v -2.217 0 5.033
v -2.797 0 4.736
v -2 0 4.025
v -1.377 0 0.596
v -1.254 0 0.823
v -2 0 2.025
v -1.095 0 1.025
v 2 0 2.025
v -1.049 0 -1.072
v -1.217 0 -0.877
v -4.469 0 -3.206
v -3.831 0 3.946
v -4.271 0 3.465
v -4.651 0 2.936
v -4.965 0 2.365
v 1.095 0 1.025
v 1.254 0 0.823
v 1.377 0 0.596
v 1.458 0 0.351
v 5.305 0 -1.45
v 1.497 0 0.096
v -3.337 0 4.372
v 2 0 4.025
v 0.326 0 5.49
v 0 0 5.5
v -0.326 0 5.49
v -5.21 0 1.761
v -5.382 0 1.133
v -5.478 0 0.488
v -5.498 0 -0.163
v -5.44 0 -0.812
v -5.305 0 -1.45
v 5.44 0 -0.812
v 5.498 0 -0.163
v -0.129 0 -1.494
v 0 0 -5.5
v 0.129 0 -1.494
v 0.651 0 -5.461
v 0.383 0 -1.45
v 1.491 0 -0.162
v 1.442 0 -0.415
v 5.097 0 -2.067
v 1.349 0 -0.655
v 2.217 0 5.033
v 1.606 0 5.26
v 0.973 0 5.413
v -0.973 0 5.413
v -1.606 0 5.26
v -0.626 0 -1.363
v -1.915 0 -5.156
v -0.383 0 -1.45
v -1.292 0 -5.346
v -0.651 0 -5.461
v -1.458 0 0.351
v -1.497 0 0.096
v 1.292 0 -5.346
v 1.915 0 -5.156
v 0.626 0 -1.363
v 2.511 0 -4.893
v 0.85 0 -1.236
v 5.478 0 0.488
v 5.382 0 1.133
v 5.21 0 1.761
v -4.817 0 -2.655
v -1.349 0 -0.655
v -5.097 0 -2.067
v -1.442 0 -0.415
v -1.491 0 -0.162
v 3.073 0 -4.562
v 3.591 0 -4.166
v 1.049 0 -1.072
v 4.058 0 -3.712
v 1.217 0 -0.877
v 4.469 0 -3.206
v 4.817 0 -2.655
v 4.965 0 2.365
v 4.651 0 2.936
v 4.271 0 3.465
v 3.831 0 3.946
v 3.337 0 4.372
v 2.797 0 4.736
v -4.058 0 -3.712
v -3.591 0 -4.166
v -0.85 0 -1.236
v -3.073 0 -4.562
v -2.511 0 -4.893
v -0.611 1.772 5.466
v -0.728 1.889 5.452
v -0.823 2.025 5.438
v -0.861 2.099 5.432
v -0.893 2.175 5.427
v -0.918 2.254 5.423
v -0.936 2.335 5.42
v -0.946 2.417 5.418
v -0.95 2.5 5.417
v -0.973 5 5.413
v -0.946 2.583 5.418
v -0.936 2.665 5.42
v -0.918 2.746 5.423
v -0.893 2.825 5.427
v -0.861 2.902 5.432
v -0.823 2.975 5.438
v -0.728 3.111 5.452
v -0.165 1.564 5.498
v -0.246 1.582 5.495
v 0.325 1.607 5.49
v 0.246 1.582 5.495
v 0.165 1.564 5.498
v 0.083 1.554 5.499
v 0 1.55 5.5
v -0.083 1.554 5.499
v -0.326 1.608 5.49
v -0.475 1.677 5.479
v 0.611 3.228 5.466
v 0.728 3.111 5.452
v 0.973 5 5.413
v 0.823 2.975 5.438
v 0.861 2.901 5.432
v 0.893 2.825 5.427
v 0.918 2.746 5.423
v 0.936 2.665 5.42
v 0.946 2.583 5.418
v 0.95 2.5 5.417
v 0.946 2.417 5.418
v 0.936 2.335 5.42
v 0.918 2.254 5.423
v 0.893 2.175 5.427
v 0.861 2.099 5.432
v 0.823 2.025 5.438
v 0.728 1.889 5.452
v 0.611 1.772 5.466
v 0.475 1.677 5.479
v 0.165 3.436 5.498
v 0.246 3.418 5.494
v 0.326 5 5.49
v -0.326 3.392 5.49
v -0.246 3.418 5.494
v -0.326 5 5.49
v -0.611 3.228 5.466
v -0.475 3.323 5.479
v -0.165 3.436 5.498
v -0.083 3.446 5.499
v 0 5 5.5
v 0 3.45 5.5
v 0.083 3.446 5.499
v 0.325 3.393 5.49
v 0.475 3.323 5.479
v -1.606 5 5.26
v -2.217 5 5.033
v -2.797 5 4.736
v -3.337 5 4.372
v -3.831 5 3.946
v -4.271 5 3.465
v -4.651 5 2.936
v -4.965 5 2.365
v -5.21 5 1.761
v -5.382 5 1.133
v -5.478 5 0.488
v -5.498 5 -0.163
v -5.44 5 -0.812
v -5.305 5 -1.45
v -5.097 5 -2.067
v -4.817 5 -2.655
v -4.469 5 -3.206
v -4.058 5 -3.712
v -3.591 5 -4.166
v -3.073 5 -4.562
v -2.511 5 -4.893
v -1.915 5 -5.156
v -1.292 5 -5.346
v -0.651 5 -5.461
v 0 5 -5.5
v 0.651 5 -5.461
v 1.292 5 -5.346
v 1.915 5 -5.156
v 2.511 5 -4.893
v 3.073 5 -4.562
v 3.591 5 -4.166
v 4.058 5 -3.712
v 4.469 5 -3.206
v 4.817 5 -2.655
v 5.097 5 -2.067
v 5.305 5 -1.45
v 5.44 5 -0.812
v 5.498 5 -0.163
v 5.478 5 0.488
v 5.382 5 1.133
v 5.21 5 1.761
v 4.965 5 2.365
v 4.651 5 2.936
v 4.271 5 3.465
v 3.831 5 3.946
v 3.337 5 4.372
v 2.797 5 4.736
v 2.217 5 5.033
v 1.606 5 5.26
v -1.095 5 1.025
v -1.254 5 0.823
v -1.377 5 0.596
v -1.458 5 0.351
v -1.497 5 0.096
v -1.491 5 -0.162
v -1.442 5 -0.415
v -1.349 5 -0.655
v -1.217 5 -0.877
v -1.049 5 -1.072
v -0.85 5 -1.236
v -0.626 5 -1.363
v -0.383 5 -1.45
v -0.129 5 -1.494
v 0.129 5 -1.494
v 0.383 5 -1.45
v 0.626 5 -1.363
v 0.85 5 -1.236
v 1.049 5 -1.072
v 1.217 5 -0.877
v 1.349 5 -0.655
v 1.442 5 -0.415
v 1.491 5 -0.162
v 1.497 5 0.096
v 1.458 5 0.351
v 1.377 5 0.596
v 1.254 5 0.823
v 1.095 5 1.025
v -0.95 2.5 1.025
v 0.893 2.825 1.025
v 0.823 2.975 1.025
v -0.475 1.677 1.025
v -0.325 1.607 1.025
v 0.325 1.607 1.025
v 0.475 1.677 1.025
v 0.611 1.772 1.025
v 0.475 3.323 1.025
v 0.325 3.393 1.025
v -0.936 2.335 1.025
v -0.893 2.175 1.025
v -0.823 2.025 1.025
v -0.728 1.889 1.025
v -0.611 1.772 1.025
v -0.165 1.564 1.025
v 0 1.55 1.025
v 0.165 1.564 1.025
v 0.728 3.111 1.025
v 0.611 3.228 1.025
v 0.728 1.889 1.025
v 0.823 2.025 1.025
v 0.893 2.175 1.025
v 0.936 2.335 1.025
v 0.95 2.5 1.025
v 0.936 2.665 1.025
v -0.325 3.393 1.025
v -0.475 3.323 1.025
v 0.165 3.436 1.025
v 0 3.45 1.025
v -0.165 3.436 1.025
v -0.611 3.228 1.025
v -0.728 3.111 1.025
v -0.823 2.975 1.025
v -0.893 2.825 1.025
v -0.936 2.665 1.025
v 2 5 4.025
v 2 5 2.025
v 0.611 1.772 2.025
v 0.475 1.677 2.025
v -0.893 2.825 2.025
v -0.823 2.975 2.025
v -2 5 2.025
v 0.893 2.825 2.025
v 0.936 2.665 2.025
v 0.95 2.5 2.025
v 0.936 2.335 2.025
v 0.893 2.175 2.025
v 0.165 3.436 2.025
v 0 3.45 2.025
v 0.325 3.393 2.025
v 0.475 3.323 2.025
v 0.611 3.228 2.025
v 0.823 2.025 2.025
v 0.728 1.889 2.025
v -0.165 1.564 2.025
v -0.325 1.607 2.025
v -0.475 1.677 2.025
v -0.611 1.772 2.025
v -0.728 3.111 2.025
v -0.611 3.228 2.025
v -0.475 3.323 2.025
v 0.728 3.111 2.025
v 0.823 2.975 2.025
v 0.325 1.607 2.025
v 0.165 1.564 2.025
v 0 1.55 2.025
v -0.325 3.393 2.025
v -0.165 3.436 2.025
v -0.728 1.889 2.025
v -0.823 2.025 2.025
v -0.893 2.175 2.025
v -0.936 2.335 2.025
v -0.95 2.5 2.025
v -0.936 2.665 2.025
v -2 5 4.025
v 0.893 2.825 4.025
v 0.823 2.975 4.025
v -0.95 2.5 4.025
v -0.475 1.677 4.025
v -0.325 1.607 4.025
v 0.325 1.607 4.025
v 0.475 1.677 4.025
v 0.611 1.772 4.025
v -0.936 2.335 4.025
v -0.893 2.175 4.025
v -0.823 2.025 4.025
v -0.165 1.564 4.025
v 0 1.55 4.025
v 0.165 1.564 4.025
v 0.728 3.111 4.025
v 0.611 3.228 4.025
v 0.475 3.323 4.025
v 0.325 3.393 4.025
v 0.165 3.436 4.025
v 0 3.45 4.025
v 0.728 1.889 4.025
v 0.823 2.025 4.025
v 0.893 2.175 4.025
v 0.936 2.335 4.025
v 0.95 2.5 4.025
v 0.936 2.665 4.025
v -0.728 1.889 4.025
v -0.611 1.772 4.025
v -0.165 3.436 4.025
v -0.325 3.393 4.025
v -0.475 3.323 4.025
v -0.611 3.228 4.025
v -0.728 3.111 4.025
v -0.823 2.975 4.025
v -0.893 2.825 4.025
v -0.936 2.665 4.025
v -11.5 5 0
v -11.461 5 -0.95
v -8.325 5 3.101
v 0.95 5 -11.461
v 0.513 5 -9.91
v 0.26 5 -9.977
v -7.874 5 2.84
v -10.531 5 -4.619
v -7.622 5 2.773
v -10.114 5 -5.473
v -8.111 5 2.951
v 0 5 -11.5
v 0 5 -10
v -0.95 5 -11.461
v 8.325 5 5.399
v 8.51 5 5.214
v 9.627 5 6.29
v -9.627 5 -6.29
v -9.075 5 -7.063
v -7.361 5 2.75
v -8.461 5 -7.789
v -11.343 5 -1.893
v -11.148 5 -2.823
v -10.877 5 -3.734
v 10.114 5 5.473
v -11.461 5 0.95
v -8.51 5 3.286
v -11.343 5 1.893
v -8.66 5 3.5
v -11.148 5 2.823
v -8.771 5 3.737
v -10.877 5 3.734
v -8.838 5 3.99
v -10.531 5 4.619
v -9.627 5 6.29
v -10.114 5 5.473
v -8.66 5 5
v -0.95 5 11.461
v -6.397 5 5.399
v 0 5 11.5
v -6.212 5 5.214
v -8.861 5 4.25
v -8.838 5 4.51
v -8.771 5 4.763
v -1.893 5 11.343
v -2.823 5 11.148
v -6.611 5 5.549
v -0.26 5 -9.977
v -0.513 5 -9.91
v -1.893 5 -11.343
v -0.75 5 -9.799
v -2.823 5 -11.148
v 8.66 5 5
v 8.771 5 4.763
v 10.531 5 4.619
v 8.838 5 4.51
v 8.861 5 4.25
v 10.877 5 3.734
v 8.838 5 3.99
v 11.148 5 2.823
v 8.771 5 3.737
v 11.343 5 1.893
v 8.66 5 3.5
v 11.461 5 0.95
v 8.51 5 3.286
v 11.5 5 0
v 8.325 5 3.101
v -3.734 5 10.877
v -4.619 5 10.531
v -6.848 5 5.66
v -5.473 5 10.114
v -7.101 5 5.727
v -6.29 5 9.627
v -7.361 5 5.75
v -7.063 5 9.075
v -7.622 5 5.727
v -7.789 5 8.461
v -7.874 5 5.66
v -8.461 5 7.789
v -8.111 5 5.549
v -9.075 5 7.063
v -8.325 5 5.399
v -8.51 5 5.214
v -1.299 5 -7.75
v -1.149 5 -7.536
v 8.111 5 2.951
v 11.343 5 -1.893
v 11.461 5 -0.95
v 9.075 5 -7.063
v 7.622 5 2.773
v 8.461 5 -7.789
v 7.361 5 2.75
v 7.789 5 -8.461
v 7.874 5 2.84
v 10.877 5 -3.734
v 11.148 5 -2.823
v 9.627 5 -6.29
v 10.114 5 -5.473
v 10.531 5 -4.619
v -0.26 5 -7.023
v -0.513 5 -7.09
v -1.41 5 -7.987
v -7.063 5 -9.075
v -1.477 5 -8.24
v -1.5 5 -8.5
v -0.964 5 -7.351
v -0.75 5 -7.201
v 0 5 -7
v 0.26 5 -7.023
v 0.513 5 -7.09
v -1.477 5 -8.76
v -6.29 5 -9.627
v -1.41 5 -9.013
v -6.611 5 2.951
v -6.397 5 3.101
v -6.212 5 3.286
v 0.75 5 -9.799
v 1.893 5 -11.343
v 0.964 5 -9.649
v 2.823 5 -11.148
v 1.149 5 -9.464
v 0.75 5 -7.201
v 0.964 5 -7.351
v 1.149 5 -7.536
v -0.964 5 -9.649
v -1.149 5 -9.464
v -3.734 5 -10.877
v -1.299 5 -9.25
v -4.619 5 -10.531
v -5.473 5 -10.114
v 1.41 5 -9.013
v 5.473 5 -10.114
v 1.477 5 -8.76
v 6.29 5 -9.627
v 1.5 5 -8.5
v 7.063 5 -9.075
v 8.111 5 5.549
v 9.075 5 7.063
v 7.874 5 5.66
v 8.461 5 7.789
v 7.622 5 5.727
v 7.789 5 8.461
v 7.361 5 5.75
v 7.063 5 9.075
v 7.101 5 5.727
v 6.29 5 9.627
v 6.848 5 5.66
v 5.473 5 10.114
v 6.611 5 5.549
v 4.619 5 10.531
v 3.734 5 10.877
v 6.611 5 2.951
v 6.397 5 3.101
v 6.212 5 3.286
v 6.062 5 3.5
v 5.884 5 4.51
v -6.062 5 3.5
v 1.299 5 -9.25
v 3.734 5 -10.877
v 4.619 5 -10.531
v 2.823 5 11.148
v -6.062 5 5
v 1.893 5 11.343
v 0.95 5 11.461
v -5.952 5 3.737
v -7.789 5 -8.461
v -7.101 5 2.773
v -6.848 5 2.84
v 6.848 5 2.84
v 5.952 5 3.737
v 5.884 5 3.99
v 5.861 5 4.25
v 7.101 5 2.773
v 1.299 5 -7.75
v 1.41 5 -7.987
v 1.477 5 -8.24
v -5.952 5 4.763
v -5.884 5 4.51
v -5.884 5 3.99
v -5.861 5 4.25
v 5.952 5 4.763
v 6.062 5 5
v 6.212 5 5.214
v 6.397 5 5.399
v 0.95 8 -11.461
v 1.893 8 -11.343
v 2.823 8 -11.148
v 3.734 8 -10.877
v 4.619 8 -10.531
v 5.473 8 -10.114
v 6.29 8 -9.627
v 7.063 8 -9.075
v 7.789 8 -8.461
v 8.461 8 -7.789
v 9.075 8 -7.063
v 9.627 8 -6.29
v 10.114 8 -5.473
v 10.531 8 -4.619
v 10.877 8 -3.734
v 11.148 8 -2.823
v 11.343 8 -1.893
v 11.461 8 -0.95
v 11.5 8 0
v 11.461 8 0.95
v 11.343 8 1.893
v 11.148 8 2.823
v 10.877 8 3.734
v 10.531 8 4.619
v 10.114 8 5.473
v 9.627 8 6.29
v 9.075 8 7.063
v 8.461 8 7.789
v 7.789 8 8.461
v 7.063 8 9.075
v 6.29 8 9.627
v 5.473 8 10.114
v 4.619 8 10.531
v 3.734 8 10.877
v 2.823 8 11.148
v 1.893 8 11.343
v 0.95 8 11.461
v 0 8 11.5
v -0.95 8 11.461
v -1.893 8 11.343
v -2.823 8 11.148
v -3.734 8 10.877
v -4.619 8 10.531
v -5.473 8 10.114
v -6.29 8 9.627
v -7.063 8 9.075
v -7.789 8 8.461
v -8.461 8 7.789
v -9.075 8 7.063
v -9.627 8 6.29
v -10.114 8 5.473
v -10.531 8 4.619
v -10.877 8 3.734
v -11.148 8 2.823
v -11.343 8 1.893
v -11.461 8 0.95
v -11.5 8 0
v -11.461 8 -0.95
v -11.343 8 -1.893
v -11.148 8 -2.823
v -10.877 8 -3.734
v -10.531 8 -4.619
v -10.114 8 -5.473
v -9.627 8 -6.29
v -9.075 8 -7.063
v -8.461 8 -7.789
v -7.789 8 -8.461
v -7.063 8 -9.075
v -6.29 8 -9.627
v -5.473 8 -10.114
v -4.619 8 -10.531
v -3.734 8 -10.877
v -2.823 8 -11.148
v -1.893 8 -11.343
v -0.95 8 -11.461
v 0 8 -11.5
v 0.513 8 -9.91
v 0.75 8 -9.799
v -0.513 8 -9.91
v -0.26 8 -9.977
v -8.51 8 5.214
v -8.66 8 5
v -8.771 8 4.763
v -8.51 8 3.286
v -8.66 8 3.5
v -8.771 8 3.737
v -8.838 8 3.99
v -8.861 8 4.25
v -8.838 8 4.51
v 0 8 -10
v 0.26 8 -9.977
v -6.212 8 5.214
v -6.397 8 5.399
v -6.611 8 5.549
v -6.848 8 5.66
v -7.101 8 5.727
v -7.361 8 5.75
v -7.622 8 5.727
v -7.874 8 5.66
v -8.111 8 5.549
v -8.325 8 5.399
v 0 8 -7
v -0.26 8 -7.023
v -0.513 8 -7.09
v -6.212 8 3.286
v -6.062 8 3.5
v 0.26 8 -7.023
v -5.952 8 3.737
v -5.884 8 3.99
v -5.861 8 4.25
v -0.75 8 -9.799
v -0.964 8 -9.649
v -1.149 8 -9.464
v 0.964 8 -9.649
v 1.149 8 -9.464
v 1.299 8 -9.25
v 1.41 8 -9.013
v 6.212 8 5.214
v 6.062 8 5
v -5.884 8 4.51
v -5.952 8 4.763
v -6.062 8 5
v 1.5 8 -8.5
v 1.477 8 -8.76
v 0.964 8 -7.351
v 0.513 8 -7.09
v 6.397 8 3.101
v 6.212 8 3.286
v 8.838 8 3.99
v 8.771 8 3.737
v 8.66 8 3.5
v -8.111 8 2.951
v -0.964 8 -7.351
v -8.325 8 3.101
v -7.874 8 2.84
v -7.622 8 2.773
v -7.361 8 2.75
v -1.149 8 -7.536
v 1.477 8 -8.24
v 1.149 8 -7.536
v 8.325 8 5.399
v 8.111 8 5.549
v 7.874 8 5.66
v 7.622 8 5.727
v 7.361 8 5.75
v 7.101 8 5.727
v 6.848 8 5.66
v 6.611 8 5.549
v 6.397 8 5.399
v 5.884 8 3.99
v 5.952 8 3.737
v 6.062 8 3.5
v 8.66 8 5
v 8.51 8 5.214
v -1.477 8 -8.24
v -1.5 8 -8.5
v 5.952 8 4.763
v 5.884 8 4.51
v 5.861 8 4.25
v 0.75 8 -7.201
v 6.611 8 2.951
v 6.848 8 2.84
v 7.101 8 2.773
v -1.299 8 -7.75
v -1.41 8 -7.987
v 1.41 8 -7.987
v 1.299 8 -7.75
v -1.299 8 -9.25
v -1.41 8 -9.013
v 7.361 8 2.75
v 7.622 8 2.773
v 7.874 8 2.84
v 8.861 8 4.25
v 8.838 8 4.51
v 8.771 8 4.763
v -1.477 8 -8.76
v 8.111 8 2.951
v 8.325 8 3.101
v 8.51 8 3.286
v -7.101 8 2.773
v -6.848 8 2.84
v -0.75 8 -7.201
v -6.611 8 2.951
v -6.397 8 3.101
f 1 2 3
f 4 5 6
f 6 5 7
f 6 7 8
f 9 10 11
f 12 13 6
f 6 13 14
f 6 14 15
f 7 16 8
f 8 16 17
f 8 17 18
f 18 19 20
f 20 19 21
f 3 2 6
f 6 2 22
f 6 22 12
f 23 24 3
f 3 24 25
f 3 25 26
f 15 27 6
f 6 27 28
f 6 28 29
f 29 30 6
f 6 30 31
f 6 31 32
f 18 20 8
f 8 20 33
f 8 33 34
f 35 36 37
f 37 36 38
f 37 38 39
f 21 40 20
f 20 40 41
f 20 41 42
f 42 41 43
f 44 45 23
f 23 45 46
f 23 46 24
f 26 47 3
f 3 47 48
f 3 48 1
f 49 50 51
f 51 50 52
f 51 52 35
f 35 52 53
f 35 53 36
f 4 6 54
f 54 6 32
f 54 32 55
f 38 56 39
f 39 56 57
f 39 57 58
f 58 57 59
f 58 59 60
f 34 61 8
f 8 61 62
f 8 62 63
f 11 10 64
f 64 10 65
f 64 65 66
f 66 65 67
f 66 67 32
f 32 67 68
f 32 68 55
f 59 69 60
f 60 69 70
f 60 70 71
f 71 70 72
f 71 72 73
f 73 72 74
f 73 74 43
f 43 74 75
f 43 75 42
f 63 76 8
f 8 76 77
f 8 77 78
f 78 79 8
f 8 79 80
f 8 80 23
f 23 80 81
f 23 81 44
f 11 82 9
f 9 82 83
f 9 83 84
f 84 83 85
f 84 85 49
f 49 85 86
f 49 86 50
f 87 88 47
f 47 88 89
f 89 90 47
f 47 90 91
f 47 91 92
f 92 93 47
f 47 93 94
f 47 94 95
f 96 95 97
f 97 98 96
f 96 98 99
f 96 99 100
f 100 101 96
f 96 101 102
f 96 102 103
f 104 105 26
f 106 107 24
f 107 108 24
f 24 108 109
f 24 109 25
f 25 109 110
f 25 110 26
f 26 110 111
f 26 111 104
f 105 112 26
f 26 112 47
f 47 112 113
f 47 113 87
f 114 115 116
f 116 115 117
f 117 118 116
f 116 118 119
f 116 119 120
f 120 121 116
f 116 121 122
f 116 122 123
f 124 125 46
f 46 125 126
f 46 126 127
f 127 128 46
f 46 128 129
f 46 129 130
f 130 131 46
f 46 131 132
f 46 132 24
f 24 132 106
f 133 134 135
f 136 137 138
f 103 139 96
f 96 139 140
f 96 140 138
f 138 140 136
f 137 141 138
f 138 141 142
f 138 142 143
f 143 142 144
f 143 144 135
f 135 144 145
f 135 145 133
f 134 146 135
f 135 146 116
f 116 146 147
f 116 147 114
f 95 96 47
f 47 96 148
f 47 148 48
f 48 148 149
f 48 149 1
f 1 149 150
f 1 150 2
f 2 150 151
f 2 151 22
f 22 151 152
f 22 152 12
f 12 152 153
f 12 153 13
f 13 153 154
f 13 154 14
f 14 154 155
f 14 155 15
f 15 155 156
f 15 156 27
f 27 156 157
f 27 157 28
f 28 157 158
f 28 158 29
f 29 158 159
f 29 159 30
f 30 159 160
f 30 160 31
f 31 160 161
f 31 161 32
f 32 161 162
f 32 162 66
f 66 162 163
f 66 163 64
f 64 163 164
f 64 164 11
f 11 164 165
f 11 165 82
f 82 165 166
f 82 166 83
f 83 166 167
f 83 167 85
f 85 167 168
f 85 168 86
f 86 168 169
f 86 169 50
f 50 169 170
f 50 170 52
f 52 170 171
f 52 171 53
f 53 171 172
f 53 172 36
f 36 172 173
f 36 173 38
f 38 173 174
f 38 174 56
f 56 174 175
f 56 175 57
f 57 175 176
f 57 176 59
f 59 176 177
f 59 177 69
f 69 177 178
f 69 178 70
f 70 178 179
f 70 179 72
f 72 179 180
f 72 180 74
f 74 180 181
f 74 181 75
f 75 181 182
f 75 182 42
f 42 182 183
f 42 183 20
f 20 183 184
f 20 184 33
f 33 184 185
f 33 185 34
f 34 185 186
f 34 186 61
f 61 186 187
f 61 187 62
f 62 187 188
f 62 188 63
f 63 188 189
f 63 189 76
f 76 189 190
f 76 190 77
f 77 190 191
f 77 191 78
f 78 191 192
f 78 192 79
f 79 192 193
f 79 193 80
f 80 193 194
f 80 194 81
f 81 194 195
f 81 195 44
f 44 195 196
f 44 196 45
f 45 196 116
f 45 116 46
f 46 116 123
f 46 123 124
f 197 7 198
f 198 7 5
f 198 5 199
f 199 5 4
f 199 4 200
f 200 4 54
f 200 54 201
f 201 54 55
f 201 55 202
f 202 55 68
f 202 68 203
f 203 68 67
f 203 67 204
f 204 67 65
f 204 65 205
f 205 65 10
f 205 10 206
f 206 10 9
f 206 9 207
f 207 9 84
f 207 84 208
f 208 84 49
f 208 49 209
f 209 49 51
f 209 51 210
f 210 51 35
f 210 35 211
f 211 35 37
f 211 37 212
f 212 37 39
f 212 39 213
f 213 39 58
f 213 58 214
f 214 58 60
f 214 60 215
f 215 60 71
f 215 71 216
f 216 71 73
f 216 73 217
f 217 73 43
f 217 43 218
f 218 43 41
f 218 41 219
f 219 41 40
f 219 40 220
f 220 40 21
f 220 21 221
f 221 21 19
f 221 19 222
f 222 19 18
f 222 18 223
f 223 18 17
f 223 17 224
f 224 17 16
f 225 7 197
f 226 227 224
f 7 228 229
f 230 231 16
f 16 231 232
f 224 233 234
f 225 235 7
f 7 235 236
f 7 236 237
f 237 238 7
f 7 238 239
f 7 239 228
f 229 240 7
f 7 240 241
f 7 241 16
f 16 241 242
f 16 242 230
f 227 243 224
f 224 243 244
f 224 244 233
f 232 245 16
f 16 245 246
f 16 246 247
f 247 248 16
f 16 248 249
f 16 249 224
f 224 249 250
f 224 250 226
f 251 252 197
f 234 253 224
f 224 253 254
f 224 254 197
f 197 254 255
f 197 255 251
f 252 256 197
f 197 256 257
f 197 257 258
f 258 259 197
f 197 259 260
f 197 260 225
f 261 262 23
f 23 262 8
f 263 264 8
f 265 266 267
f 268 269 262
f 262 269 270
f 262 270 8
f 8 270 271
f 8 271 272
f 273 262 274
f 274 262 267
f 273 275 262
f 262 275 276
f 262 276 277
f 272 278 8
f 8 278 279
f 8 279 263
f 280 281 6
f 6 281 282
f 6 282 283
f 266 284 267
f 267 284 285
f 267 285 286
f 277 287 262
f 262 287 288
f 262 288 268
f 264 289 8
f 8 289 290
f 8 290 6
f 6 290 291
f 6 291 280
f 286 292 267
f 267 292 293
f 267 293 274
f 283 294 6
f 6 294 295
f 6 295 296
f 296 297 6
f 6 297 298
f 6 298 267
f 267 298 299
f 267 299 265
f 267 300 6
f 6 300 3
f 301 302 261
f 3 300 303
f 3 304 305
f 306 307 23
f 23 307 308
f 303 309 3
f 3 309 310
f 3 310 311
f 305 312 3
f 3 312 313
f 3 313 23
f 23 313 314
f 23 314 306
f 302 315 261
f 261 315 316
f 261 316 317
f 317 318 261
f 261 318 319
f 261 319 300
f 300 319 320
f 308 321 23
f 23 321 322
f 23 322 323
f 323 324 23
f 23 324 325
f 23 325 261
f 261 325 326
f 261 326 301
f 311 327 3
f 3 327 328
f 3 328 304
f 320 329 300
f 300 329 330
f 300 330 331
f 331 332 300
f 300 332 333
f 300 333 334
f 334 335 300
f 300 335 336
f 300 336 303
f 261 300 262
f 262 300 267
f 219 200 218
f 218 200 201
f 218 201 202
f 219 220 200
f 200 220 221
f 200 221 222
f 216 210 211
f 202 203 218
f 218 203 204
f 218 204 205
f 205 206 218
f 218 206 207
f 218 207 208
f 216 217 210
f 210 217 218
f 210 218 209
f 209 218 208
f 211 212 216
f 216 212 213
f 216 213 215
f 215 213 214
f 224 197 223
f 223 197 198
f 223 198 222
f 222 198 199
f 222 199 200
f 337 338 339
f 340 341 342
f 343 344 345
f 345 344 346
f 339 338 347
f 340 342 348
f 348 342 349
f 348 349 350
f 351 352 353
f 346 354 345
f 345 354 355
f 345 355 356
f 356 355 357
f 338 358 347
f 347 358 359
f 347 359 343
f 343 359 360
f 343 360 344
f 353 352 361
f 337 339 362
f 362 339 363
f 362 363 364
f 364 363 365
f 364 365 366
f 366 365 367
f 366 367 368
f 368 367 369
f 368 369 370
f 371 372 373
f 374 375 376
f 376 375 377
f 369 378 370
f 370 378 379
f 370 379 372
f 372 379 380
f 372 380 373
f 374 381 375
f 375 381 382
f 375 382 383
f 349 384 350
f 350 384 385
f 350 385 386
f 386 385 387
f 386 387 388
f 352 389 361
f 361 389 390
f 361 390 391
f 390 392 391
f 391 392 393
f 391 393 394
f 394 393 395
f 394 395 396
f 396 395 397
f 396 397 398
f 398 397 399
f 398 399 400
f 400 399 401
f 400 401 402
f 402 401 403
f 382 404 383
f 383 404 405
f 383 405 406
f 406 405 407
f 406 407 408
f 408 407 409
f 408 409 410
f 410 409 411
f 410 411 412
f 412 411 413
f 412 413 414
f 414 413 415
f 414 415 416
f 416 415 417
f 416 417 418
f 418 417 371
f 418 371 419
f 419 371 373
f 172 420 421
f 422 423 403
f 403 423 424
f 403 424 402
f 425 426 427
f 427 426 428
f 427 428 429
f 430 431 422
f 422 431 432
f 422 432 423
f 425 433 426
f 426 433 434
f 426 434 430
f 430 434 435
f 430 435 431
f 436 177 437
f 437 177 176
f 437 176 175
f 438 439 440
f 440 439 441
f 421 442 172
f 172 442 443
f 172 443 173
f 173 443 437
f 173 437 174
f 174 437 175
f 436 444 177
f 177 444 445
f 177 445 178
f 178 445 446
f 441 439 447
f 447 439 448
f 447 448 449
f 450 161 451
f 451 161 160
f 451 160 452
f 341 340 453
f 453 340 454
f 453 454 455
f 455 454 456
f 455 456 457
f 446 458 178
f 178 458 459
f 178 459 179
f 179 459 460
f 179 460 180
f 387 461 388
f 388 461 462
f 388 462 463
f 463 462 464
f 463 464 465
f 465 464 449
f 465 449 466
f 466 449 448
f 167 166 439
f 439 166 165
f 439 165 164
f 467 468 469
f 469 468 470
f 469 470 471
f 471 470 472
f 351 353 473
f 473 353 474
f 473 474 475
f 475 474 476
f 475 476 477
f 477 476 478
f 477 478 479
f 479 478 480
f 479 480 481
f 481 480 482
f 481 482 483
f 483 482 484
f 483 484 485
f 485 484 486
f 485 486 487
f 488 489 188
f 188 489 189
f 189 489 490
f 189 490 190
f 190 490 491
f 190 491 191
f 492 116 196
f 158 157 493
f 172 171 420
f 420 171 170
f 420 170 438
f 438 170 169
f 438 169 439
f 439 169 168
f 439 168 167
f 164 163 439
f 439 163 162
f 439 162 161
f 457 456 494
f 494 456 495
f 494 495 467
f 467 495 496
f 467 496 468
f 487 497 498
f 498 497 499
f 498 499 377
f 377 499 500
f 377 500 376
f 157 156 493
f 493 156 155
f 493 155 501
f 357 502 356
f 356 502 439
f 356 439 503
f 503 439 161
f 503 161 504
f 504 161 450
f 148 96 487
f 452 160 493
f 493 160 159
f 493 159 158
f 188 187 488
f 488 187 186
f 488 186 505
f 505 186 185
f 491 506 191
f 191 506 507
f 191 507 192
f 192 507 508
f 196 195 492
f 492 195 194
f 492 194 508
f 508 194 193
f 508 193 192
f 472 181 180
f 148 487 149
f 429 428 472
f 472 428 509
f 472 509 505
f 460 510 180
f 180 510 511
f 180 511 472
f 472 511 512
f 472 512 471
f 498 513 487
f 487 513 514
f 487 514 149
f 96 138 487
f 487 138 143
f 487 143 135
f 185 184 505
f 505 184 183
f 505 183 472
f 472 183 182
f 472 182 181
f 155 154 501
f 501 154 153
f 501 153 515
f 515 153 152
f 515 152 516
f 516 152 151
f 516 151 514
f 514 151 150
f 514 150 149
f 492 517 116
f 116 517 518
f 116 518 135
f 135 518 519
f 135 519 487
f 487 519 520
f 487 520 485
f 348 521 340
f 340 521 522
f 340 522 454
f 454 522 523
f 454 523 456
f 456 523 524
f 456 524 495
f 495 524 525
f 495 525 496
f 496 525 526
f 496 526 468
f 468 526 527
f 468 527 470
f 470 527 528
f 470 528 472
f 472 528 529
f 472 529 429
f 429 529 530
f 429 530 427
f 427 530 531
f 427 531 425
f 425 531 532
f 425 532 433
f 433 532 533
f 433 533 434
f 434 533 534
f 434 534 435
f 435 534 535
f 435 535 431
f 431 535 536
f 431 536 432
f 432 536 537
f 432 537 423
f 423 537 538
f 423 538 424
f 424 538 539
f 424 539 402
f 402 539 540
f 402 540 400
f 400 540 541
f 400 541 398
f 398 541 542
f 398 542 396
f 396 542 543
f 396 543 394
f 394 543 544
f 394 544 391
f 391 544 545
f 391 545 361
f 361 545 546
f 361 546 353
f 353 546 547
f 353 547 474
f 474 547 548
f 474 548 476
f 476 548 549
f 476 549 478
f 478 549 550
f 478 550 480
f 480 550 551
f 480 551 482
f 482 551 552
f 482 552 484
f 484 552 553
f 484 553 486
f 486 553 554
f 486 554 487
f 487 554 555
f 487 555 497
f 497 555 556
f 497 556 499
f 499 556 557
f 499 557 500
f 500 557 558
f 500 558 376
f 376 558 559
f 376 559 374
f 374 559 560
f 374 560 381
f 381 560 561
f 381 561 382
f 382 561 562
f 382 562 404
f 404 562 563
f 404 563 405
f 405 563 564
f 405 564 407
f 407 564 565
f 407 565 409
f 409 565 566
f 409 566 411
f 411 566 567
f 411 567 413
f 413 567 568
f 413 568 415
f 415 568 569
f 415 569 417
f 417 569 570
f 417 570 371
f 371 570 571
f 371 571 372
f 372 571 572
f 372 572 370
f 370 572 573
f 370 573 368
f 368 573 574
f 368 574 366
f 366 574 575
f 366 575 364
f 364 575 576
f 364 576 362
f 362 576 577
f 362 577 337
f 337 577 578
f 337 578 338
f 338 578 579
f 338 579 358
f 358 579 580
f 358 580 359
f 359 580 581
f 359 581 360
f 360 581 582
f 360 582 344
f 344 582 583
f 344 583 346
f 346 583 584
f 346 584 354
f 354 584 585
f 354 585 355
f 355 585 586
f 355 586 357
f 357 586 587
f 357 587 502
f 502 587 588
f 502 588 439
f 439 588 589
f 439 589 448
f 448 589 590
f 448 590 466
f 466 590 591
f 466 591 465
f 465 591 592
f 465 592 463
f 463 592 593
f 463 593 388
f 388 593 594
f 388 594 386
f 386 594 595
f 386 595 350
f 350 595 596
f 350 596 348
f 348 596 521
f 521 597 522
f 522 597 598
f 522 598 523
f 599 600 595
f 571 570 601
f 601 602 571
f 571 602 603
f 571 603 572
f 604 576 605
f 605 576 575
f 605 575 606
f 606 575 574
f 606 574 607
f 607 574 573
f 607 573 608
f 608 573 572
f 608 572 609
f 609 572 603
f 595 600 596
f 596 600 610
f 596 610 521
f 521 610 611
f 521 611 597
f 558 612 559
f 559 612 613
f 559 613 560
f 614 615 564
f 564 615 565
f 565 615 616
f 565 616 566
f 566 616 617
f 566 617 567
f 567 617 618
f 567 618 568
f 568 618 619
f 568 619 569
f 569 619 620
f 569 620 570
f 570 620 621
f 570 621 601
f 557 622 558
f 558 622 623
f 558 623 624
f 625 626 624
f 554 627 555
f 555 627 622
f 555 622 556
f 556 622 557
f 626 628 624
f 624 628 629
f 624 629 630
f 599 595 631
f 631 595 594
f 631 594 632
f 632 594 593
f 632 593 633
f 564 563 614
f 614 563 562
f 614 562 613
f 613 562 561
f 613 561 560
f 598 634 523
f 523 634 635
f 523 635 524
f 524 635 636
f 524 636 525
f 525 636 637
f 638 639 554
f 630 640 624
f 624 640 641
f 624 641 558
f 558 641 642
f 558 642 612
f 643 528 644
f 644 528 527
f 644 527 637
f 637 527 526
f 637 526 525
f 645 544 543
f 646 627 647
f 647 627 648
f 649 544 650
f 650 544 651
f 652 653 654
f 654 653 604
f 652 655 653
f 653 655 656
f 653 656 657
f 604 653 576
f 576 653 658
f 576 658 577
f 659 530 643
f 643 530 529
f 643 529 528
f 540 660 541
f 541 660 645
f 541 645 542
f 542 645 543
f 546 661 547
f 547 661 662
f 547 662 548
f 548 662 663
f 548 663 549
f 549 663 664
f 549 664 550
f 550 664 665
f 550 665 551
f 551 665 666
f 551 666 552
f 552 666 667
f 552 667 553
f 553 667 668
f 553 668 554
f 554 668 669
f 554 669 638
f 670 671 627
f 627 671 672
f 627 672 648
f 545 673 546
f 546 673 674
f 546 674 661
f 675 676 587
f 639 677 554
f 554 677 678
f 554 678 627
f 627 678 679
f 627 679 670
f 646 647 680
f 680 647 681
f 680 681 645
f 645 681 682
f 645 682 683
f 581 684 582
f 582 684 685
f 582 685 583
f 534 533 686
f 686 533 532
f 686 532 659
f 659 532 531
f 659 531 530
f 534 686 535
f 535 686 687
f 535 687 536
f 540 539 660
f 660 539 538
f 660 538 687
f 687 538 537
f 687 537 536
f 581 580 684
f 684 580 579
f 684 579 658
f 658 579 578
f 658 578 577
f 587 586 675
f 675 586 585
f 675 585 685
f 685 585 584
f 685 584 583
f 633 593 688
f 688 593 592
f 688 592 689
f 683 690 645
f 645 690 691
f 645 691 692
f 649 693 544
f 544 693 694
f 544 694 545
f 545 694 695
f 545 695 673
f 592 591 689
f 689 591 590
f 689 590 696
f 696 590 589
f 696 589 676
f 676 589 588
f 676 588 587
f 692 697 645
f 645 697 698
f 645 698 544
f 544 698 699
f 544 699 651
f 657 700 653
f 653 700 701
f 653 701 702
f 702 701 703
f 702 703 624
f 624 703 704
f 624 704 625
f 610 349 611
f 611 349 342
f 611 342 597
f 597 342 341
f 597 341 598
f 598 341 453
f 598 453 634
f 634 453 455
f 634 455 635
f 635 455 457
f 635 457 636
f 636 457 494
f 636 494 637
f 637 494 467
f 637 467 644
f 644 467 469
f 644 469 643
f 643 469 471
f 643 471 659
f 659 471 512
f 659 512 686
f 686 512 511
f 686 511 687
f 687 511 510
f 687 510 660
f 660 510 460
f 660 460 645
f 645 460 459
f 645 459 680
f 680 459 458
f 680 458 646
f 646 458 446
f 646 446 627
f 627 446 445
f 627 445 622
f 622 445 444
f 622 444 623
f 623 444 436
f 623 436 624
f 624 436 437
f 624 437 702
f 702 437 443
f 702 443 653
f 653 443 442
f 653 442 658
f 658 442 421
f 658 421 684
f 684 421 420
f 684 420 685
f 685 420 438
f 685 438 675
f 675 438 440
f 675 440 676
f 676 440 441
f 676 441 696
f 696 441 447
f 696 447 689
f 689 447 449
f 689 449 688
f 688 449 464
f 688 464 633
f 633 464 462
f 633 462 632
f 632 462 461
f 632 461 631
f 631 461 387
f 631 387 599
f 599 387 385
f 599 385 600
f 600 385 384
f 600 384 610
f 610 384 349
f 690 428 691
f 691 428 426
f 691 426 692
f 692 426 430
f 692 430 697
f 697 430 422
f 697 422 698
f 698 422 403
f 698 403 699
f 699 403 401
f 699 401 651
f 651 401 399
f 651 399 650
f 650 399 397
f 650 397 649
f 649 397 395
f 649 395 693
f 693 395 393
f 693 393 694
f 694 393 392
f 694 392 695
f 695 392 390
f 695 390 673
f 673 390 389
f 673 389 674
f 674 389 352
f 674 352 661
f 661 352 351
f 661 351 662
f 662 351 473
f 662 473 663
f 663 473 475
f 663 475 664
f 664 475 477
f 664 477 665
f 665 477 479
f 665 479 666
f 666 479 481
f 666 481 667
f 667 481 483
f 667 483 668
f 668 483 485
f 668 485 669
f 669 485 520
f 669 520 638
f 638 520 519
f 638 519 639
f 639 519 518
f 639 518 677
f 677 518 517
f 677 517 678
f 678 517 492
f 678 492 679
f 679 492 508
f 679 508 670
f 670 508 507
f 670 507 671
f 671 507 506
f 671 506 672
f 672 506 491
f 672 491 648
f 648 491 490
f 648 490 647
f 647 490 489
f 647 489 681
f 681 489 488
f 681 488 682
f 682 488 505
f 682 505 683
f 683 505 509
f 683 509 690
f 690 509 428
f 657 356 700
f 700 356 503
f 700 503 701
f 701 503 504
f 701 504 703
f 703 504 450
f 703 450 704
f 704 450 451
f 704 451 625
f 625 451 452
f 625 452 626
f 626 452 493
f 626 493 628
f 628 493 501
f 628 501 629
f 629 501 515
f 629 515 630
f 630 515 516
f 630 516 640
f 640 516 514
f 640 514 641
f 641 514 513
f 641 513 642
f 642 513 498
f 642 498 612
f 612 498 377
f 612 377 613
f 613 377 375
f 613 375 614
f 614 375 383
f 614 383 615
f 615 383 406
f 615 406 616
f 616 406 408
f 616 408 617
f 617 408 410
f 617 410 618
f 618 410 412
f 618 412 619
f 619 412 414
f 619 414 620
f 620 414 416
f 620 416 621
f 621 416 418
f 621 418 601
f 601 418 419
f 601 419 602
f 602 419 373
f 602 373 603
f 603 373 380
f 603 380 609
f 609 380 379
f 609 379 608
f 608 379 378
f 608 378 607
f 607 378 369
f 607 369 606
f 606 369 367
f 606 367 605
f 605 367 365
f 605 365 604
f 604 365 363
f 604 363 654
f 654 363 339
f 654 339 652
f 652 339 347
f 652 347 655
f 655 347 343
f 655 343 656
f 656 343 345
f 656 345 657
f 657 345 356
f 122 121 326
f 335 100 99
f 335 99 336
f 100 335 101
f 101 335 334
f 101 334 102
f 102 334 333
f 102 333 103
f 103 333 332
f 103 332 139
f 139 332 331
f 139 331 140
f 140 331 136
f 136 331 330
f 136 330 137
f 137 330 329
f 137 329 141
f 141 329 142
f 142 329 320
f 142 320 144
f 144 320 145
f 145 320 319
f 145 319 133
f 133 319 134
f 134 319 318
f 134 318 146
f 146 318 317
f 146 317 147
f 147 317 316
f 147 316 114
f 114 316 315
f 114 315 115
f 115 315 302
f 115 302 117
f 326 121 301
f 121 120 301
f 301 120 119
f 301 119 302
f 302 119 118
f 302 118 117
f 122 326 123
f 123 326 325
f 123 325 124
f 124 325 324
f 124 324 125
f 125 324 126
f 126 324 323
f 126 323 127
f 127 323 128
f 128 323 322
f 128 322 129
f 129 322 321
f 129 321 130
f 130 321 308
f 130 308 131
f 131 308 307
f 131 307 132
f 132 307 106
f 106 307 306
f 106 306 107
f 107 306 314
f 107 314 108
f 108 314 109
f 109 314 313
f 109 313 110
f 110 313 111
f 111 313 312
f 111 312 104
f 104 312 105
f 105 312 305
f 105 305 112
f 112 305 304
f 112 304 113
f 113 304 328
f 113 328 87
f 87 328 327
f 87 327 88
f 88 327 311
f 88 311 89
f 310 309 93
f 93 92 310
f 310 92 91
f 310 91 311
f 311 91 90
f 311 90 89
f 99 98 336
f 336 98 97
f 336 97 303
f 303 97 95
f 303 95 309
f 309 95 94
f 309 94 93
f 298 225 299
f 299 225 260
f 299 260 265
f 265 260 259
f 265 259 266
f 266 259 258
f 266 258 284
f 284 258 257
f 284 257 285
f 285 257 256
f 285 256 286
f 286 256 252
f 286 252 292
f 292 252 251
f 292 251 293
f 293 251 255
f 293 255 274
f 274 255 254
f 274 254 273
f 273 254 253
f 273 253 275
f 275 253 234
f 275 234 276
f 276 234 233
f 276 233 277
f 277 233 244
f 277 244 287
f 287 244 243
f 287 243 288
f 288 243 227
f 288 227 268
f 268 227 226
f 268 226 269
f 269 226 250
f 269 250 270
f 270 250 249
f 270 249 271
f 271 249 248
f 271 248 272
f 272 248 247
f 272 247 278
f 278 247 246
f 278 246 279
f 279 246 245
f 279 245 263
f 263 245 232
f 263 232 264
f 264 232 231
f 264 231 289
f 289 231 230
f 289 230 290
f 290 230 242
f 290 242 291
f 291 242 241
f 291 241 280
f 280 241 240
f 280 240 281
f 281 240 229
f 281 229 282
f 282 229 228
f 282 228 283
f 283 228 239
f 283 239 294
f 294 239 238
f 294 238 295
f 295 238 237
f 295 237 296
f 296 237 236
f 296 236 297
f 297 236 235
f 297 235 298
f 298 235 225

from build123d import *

# Parameters (mm, degrees)
SKETCH1_R                   = 5.5
SKETCH1_W                   = 4
SKETCH1_H                   = 2
BOSS_EXTRUDE1_DEPTH         = 5
SKETCH2_R                   = 11.5
BOSS_EXTRUDE2_DEPTH         = 3
SKETCH3_R                   = 1.5
WHEEL_SCREWS_DEPTH          = 3
WHEEL_SCREW_PATTERN_COUNT   = 3
SKETCH5_R                   = 0.95
MOTOR_SCREW_HOLE_DEPTH      = 3
MOTOR_SCREW_HOLE_DEPTH_BACK = 8.474829283


with BuildPart() as part:
    # Sketch1 → Boss-Extrude1 (new body)
    with BuildSketch(Plane(origin=(0, 0, 0), x_dir=(1, 0, 0), z_dir=(0, 1, 0))):
        Circle(SKETCH1_R)
        with BuildLine():
            Line((-1.095, -1.025170717), (1.095, -1.025170717))
            ThreePointArc((1.095, -1.025170717), (0, 1.5), (-1.095, -1.025170717))
        make_face(mode=Mode.SUBTRACT)
        with Locations((0, -3.025170717)):
            Rectangle(SKETCH1_W, SKETCH1_H, mode=Mode.SUBTRACT)
    extrude(amount=BOSS_EXTRUDE1_DEPTH)

    # Sketch2 → Boss-Extrude2 (add)
    with BuildSketch(Plane(origin=(0, 5, 0), x_dir=(1, 0, 0), z_dir=(0, 1, 0))):
        Circle(SKETCH2_R)
    extrude(amount=BOSS_EXTRUDE2_DEPTH)

    # Sketch3 → wheel_screws (cut)
    with BuildSketch(Plane.XZ.offset(-5)):
        with Locations((0, -8.5)):
            Circle(SKETCH3_R)
    wheel_screws = extrude(amount=-WHEEL_SCREWS_DEPTH, mode=Mode.SUBTRACT)

    # wheel_screw_pattern: wheel_screws ×3 about axis
    wheel_screw_pattern_axis = Axis((0, 0, 0), (0, 1, 0))
    for i in range(1, WHEEL_SCREW_PATTERN_COUNT):
        add(wheel_screws.rotate(wheel_screw_pattern_axis, i * 360 / WHEEL_SCREW_PATTERN_COUNT), mode=Mode.SUBTRACT)

    # Sketch5 → motor_screw_hole (cut, two sides)
    with BuildSketch(Plane(origin=(0, 0, 4.025170717), x_dir=(-1, 0, 0), z_dir=(0, 0, -1))) as motor_screw_hole_sk:
        with Locations((0, 2.5)):
            Circle(SKETCH5_R)
    extrude(amount=MOTOR_SCREW_HOLE_DEPTH, mode=Mode.SUBTRACT)
    extrude(motor_screw_hole_sk.sketch, amount=-MOTOR_SCREW_HOLE_DEPTH_BACK, mode=Mode.SUBTRACT)


solid = part.part
